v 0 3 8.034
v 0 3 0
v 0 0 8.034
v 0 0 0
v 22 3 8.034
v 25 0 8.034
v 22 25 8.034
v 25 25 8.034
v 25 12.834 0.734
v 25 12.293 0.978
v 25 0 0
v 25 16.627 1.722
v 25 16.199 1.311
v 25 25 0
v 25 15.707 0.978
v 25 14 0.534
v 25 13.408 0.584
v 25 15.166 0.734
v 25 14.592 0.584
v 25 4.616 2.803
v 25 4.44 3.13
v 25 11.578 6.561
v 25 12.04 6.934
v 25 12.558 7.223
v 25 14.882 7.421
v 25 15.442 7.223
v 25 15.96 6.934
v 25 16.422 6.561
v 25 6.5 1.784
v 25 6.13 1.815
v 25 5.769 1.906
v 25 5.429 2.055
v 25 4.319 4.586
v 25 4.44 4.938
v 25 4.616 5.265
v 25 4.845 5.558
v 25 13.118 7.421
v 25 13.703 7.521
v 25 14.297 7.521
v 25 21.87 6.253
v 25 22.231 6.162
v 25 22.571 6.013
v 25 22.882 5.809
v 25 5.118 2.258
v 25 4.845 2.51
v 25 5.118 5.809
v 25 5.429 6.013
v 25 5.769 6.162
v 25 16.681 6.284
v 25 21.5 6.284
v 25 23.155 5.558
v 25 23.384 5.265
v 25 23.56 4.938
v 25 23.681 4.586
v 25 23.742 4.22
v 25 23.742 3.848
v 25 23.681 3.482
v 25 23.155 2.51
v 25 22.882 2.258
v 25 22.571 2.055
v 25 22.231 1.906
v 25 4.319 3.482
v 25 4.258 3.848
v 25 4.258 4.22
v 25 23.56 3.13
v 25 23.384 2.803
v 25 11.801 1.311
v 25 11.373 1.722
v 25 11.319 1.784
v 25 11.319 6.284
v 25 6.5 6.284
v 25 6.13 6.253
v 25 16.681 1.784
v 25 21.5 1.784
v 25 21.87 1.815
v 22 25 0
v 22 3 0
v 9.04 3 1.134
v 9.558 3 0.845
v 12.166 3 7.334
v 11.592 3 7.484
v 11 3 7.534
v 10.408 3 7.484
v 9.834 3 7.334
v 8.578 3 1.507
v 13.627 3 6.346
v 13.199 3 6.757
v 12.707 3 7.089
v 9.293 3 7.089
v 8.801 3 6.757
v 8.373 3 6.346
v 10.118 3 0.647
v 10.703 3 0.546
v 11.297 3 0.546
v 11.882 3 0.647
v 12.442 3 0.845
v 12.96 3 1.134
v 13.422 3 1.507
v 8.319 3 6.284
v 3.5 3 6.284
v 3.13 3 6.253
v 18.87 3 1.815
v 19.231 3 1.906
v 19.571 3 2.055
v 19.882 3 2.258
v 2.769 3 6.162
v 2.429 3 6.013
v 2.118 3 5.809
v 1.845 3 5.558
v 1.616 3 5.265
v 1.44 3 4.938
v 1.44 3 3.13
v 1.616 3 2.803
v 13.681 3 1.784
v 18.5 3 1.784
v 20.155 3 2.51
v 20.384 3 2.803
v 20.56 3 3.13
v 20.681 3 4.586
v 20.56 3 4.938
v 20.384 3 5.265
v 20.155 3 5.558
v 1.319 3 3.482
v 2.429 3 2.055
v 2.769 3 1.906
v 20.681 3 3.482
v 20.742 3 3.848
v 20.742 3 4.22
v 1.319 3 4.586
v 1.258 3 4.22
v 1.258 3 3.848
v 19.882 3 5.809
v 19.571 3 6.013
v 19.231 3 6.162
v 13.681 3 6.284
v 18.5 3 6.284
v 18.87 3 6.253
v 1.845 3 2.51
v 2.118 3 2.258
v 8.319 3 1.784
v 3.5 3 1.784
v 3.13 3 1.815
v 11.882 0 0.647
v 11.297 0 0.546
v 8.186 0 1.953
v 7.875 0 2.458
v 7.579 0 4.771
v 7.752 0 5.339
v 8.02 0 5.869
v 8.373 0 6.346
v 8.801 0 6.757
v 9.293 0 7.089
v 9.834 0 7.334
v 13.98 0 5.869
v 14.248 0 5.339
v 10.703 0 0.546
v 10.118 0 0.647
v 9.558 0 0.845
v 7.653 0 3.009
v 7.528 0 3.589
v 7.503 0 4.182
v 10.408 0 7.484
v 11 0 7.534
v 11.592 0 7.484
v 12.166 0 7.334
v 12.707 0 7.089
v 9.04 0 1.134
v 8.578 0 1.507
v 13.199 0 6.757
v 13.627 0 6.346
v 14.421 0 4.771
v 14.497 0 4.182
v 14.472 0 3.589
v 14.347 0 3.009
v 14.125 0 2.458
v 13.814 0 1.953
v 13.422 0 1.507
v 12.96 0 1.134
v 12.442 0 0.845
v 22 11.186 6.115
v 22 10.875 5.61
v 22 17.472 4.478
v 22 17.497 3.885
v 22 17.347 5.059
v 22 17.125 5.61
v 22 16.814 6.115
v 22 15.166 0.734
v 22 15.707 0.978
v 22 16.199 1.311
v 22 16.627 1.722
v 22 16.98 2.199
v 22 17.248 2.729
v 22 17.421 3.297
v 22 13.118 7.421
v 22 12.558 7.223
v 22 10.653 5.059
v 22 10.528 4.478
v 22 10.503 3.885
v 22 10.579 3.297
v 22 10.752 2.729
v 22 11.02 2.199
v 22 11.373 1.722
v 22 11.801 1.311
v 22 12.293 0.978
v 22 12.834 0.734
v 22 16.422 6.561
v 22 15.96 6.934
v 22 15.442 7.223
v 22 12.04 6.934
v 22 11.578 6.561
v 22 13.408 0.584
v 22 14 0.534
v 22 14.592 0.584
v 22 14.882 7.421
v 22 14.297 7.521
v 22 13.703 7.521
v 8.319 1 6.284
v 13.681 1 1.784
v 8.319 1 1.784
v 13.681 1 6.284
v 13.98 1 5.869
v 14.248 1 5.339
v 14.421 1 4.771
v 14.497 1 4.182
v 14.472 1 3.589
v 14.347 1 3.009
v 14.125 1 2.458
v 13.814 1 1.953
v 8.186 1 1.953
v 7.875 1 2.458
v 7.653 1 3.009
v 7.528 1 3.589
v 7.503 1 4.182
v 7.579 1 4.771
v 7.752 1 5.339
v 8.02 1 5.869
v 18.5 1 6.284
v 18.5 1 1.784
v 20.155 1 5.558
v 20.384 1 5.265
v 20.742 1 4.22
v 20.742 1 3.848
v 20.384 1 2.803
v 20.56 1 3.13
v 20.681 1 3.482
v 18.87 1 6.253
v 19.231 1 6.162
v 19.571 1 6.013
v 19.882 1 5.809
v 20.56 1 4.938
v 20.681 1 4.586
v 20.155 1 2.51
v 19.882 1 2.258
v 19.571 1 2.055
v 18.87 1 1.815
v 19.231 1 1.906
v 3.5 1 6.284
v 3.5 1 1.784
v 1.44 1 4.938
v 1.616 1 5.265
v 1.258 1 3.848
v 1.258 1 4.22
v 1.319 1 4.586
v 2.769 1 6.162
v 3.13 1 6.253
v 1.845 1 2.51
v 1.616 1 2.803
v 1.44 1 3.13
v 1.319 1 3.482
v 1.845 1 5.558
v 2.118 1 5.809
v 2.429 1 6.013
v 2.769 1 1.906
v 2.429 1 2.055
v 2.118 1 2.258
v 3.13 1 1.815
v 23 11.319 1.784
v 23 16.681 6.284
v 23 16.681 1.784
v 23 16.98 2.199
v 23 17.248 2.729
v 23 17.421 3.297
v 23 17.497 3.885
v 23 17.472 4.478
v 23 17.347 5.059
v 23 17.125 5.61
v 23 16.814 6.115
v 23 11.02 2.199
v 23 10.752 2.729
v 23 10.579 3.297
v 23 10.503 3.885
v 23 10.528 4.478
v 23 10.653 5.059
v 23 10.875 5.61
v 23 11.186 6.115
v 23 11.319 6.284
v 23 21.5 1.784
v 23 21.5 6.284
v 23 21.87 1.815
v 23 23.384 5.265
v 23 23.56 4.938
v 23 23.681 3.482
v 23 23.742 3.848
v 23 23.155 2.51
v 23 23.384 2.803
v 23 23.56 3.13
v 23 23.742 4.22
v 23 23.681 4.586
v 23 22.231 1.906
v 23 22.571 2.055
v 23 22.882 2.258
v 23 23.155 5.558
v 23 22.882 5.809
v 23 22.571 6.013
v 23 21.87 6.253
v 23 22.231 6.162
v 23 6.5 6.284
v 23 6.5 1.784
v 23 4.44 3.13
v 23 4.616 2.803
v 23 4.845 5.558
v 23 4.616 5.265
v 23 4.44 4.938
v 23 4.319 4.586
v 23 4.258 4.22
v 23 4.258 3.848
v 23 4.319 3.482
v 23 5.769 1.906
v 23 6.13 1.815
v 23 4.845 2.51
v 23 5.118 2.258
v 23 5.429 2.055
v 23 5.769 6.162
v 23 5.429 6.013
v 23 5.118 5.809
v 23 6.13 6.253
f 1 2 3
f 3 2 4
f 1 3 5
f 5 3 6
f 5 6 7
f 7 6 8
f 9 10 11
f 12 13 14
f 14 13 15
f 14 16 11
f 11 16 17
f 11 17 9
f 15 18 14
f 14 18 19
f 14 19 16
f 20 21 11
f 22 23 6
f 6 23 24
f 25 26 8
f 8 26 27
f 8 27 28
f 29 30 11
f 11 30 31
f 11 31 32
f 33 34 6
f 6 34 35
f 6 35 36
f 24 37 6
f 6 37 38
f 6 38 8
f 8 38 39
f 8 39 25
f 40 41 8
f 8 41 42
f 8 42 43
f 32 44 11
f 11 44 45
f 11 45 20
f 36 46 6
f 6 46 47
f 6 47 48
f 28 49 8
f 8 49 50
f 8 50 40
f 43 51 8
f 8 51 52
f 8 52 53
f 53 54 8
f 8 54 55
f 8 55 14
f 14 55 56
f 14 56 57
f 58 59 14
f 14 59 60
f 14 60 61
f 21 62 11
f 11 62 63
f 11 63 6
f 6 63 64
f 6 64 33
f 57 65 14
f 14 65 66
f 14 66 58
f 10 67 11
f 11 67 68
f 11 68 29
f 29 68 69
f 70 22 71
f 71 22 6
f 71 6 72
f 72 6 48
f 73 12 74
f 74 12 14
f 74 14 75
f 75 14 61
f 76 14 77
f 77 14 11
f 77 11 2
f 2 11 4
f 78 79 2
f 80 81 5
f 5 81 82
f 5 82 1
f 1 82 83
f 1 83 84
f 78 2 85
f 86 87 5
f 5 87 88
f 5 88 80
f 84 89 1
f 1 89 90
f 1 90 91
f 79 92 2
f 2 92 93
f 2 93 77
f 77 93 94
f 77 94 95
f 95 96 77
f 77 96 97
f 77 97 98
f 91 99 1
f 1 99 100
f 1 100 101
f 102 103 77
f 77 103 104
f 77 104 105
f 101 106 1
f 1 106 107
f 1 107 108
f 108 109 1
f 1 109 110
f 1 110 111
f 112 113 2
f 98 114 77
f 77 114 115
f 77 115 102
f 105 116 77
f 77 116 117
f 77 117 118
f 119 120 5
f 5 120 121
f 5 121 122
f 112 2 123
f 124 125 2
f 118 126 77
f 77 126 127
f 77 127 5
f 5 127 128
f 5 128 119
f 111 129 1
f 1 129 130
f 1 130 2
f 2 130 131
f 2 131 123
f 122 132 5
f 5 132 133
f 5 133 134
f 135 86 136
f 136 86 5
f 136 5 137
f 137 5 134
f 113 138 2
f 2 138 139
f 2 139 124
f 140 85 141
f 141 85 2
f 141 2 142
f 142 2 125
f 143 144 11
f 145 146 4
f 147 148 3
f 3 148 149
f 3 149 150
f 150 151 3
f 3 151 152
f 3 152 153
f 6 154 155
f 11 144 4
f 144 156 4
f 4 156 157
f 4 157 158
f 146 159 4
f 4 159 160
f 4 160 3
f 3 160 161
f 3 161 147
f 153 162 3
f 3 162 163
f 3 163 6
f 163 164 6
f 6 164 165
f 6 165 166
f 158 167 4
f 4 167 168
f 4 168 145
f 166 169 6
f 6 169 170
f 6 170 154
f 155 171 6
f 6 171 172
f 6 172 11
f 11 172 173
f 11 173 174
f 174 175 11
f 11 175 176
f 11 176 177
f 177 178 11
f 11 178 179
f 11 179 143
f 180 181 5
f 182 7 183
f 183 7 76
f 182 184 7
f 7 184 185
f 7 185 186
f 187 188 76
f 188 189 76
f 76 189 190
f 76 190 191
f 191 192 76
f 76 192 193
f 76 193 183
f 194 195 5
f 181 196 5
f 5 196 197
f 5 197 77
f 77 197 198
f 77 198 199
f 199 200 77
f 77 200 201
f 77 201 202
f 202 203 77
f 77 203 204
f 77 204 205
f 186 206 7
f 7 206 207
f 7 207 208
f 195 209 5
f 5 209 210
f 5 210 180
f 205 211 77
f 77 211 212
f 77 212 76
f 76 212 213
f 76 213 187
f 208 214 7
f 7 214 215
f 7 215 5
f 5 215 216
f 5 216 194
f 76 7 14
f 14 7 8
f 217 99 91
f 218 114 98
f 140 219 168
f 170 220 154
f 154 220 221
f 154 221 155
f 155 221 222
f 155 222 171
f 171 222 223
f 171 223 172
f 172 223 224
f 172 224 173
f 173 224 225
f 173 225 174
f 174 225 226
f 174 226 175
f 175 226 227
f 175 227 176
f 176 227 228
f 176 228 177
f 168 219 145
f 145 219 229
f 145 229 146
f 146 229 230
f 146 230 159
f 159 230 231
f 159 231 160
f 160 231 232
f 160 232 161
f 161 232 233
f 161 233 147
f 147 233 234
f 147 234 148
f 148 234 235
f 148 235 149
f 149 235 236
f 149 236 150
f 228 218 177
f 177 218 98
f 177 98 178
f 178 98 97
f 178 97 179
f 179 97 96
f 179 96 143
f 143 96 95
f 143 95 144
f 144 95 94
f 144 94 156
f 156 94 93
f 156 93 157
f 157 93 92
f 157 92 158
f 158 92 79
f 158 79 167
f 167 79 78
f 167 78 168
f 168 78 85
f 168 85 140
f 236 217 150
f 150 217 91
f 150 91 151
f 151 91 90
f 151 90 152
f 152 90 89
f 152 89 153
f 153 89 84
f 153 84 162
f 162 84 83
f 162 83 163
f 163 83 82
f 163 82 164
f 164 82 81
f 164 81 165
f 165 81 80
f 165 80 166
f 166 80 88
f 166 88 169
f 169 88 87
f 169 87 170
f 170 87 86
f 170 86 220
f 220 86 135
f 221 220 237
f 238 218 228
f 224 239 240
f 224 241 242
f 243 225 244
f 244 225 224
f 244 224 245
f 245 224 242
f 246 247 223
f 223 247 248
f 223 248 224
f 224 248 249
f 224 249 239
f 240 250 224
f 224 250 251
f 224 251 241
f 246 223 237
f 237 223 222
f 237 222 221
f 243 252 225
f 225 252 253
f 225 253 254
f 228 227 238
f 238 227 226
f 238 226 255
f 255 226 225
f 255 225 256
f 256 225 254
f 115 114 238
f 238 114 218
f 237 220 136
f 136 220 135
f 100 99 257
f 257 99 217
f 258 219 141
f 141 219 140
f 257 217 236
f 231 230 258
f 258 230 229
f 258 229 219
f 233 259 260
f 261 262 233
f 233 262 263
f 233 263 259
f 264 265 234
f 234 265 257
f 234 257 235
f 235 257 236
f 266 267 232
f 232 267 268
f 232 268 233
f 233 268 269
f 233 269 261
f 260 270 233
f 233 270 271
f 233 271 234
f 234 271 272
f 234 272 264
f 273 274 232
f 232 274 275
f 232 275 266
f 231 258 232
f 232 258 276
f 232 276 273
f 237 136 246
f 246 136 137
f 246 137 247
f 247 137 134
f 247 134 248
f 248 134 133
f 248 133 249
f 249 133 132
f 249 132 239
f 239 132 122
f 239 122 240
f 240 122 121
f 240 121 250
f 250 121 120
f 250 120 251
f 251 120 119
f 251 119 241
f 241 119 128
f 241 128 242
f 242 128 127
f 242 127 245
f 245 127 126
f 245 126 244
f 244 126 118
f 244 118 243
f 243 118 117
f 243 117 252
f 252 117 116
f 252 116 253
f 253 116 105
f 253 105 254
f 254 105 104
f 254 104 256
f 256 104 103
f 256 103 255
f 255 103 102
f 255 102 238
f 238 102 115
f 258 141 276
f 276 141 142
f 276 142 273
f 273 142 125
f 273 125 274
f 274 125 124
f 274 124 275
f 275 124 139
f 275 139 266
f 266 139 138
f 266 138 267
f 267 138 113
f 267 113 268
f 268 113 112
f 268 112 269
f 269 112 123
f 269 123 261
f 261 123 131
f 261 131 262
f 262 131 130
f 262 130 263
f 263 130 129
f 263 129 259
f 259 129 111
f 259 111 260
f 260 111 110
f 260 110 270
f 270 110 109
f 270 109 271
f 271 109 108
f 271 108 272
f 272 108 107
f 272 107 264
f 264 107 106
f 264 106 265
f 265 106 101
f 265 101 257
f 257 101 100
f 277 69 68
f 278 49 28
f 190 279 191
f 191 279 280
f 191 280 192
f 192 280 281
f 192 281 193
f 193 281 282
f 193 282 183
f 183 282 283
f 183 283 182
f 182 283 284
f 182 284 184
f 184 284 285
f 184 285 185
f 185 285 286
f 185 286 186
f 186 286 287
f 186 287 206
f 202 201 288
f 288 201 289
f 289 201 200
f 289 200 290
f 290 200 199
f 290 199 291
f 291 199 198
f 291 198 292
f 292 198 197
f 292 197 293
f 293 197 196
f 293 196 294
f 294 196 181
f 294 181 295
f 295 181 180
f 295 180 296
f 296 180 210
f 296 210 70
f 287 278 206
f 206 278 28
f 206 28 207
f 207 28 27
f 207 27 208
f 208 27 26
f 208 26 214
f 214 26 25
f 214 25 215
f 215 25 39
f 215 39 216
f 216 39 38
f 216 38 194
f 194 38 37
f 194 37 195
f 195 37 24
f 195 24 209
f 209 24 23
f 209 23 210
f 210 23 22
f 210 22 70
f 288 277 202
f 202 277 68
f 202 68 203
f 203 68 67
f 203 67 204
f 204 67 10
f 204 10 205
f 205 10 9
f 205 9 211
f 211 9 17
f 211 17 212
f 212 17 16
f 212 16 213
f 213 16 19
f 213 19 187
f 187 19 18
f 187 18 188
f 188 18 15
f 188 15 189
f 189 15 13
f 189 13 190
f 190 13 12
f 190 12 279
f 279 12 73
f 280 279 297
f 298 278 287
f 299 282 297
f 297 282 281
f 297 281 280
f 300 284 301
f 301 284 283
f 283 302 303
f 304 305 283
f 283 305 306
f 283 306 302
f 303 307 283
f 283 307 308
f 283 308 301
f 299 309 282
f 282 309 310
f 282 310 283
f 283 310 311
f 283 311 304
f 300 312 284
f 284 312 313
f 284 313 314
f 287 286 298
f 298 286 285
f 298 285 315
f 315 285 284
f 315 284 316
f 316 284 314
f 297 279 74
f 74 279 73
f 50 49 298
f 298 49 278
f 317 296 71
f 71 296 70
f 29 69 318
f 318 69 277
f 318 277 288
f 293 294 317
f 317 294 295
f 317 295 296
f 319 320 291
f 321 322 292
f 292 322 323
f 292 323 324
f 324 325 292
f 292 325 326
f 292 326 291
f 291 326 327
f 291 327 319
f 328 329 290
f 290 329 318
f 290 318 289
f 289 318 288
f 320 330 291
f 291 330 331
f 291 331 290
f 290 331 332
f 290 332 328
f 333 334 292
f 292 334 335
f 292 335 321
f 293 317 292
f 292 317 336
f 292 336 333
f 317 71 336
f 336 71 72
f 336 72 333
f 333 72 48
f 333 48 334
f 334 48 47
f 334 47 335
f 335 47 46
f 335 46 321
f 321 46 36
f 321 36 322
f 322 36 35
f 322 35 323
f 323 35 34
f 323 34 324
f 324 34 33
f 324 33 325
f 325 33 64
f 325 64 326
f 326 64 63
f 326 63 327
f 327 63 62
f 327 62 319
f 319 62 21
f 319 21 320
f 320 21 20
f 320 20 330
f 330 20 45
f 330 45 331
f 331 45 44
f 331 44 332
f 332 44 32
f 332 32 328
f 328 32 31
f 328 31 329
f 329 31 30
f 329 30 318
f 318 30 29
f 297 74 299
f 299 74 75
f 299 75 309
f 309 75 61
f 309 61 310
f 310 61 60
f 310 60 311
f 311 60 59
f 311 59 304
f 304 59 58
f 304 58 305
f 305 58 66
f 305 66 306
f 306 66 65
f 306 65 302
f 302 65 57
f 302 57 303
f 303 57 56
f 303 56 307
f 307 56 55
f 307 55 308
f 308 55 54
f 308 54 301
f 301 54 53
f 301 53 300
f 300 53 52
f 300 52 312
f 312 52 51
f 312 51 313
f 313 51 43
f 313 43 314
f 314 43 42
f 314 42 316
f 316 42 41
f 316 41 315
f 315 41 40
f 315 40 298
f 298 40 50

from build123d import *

# Parameters (mm, degrees)
SKETCH_1_W          = 25
SKETCH_1_H          = 8.033880903
EXTRUDE_1_DEPTH     = 3
SKETCH_2_W          = 3
SKETCH_2_H          = 8.033880903
EXTRUDE_2_DEPTH     = 22
SKETCH_3_R          = 3.5
CUT_EXTRUDE_1_DEPTH = 3
SKETCH_4_W          = 15
SKETCH_4_H          = 4.5
CUT_EXTRUDE_2_DEPTH = 2
SKETCH_5_R          = 2.25
CUT_EXTRUDE_3_DEPTH = 2
SKETCH_6_R          = 3.5
CUT_EXTRUDE_4_DEPTH = 3
SKETCH_7_W          = 4.5
SKETCH_7_H          = 15
CUT_EXTRUDE_5_DEPTH = 2
SKETCH_8_R          = 2.25
CUT_EXTRUDE_6_DEPTH = 2


with BuildPart() as part:
    # 草图1 → 凸台-拉伸1 (new body)
    with BuildSketch(Plane(origin=(0, 0, 0), x_dir=(1, 0, 0), z_dir=(0, 1, 0))):
        with Locations((12.5, -4.016940452)):
            Rectangle(SKETCH_1_W, SKETCH_1_H)
    extrude(amount=EXTRUDE_1_DEPTH)

    # 草图2 → 凸台-拉伸2 (add)
    with BuildSketch(Plane(origin=(0, 3, 0), x_dir=(1, 0, 0), z_dir=(0, 1, 0))):
        with Locations((23.5, -4.016940452)):
            Rectangle(SKETCH_2_W, SKETCH_2_H)
    extrude(amount=EXTRUDE_2_DEPTH)

    # 草图3 → 切除-拉伸1 (cut)
    with BuildSketch(Plane(origin=(0, 3, 0), x_dir=(1, 0, 0), z_dir=(0, 1, 0))):
        with Locations(Location((11, -4.033880903, 0), (0, 0, 270))):
            Circle(SKETCH_3_R)
    extrude(amount=-CUT_EXTRUDE_1_DEPTH, mode=Mode.SUBTRACT)

    # 草图4 → 切除-拉伸2 (cut)
    with BuildSketch(Plane(origin=(0, 3, 0), x_dir=(1, 0, 0), z_dir=(0, 1, 0))):
        with Locations((11, -4.033880903)):
            Rectangle(SKETCH_4_W, SKETCH_4_H)
    extrude(amount=-CUT_EXTRUDE_2_DEPTH, mode=Mode.SUBTRACT)

    # 草图5 → 切除-拉伸3 (cut)
    with BuildSketch(Plane(origin=(0, 3, 0), x_dir=(1, 0, 0), z_dir=(0, 1, 0))):
        with Locations((18.5, -4.033880903)):
            Circle(SKETCH_5_R)
        with Locations((3.5, -4.033880903)):
            Circle(SKETCH_5_R)
    extrude(amount=-CUT_EXTRUDE_3_DEPTH, mode=Mode.SUBTRACT)

    # 草图6 → 切除-拉伸4 (cut)
    with BuildSketch(Plane(origin=(25, 0, 0), x_dir=(0, 0, -1), z_dir=(1, 0, 0))):
        with Locations((-4.033880903, 14)):
            Circle(SKETCH_6_R)
    extrude(amount=-CUT_EXTRUDE_4_DEPTH, mode=Mode.SUBTRACT)

    # 草图7 → 切除-拉伸5 (cut)
    with BuildSketch(Plane(origin=(25, 0, 0), x_dir=(0, 0, -1), z_dir=(1, 0, 0))):
        with Locations((-4.033880903, 14)):
            Rectangle(SKETCH_7_W, SKETCH_7_H)
    extrude(amount=-CUT_EXTRUDE_5_DEPTH, mode=Mode.SUBTRACT)

    # 草图8 → 切除-拉伸6 (cut)
    with BuildSketch(Plane(origin=(25, 0, 0), x_dir=(0, 0, -1), z_dir=(1, 0, 0))):
        with Locations((-4.033880903, 6.5)):
            Circle(SKETCH_8_R)
        with Locations((-4.033880903, 21.5)):
            Circle(SKETCH_8_R)
    extrude(amount=-CUT_EXTRUDE_6_DEPTH, mode=Mode.SUBTRACT)


solid = part.part
